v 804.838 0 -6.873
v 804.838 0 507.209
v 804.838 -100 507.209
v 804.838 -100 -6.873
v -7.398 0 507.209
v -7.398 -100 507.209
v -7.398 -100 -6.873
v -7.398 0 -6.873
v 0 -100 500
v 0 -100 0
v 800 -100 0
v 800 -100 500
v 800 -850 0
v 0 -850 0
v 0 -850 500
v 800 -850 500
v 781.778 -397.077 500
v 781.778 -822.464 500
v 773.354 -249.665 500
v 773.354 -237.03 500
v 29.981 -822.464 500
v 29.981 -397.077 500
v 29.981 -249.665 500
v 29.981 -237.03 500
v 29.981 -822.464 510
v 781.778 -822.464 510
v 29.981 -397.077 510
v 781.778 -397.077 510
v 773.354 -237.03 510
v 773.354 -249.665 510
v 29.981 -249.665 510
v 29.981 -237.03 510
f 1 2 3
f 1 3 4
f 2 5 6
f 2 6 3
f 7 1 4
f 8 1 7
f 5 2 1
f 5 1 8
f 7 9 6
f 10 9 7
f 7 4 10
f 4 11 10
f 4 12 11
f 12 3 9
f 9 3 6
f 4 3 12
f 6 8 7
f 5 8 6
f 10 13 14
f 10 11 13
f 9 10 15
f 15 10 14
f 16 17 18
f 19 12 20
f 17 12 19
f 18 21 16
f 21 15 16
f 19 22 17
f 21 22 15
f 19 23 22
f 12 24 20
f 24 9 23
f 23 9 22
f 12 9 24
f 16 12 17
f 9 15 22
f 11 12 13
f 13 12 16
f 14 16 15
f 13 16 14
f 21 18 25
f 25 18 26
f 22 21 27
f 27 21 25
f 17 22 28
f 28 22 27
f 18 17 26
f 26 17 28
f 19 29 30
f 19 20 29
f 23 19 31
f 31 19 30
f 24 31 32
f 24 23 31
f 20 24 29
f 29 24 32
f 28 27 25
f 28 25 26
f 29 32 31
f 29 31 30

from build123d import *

# Parameters (mm, degrees)
SKETCH_W      = 800
SKETCH_H      = 500
PAD_DEPTH     = 850
SKETCH001_W   = 812.236467
SKETCH001_H   = 514.082147
PAD001_DEPTH  = 100
SKETCH002_W   = 743.373808
SKETCH002_H   = 12.635254
SKETCH002_W_2 = 751.797392
SKETCH002_H_2 = 425.38678
PAD002_DEPTH  = 10


with BuildPart() as part:
    # Sketch → Pad (new body)
    with BuildSketch(Plane.XZ):
        with Locations((400, 250)):
            Rectangle(SKETCH_W, SKETCH_H)
    extrude(amount=PAD_DEPTH)

    # Sketch001 (on Face5 of Pad) → Pad001 (join)
    with BuildSketch(Plane(origin=(0, 0, 0), x_dir=(1, 0, 0), z_dir=(0, 1, 0))):
        with Locations((398.720084, -250.168399)):
            Rectangle(SKETCH001_W, SKETCH001_H)
    extrude(amount=-PAD001_DEPTH)

    # Sketch002 (on Face8 of Pad001) → Pad002 (join)
    with BuildSketch(Plane(origin=(0, 0, 500), x_dir=(-1, 0, 0), z_dir=(0, 0, 1))):
        with Locations((-401.667527, 243.347824)):
            Rectangle(SKETCH002_W, SKETCH002_H)
        with Locations((-405.879319, 609.770111)):
            Rectangle(SKETCH002_W_2, SKETCH002_H_2)
    extrude(amount=PAD002_DEPTH)


solid = part.part
